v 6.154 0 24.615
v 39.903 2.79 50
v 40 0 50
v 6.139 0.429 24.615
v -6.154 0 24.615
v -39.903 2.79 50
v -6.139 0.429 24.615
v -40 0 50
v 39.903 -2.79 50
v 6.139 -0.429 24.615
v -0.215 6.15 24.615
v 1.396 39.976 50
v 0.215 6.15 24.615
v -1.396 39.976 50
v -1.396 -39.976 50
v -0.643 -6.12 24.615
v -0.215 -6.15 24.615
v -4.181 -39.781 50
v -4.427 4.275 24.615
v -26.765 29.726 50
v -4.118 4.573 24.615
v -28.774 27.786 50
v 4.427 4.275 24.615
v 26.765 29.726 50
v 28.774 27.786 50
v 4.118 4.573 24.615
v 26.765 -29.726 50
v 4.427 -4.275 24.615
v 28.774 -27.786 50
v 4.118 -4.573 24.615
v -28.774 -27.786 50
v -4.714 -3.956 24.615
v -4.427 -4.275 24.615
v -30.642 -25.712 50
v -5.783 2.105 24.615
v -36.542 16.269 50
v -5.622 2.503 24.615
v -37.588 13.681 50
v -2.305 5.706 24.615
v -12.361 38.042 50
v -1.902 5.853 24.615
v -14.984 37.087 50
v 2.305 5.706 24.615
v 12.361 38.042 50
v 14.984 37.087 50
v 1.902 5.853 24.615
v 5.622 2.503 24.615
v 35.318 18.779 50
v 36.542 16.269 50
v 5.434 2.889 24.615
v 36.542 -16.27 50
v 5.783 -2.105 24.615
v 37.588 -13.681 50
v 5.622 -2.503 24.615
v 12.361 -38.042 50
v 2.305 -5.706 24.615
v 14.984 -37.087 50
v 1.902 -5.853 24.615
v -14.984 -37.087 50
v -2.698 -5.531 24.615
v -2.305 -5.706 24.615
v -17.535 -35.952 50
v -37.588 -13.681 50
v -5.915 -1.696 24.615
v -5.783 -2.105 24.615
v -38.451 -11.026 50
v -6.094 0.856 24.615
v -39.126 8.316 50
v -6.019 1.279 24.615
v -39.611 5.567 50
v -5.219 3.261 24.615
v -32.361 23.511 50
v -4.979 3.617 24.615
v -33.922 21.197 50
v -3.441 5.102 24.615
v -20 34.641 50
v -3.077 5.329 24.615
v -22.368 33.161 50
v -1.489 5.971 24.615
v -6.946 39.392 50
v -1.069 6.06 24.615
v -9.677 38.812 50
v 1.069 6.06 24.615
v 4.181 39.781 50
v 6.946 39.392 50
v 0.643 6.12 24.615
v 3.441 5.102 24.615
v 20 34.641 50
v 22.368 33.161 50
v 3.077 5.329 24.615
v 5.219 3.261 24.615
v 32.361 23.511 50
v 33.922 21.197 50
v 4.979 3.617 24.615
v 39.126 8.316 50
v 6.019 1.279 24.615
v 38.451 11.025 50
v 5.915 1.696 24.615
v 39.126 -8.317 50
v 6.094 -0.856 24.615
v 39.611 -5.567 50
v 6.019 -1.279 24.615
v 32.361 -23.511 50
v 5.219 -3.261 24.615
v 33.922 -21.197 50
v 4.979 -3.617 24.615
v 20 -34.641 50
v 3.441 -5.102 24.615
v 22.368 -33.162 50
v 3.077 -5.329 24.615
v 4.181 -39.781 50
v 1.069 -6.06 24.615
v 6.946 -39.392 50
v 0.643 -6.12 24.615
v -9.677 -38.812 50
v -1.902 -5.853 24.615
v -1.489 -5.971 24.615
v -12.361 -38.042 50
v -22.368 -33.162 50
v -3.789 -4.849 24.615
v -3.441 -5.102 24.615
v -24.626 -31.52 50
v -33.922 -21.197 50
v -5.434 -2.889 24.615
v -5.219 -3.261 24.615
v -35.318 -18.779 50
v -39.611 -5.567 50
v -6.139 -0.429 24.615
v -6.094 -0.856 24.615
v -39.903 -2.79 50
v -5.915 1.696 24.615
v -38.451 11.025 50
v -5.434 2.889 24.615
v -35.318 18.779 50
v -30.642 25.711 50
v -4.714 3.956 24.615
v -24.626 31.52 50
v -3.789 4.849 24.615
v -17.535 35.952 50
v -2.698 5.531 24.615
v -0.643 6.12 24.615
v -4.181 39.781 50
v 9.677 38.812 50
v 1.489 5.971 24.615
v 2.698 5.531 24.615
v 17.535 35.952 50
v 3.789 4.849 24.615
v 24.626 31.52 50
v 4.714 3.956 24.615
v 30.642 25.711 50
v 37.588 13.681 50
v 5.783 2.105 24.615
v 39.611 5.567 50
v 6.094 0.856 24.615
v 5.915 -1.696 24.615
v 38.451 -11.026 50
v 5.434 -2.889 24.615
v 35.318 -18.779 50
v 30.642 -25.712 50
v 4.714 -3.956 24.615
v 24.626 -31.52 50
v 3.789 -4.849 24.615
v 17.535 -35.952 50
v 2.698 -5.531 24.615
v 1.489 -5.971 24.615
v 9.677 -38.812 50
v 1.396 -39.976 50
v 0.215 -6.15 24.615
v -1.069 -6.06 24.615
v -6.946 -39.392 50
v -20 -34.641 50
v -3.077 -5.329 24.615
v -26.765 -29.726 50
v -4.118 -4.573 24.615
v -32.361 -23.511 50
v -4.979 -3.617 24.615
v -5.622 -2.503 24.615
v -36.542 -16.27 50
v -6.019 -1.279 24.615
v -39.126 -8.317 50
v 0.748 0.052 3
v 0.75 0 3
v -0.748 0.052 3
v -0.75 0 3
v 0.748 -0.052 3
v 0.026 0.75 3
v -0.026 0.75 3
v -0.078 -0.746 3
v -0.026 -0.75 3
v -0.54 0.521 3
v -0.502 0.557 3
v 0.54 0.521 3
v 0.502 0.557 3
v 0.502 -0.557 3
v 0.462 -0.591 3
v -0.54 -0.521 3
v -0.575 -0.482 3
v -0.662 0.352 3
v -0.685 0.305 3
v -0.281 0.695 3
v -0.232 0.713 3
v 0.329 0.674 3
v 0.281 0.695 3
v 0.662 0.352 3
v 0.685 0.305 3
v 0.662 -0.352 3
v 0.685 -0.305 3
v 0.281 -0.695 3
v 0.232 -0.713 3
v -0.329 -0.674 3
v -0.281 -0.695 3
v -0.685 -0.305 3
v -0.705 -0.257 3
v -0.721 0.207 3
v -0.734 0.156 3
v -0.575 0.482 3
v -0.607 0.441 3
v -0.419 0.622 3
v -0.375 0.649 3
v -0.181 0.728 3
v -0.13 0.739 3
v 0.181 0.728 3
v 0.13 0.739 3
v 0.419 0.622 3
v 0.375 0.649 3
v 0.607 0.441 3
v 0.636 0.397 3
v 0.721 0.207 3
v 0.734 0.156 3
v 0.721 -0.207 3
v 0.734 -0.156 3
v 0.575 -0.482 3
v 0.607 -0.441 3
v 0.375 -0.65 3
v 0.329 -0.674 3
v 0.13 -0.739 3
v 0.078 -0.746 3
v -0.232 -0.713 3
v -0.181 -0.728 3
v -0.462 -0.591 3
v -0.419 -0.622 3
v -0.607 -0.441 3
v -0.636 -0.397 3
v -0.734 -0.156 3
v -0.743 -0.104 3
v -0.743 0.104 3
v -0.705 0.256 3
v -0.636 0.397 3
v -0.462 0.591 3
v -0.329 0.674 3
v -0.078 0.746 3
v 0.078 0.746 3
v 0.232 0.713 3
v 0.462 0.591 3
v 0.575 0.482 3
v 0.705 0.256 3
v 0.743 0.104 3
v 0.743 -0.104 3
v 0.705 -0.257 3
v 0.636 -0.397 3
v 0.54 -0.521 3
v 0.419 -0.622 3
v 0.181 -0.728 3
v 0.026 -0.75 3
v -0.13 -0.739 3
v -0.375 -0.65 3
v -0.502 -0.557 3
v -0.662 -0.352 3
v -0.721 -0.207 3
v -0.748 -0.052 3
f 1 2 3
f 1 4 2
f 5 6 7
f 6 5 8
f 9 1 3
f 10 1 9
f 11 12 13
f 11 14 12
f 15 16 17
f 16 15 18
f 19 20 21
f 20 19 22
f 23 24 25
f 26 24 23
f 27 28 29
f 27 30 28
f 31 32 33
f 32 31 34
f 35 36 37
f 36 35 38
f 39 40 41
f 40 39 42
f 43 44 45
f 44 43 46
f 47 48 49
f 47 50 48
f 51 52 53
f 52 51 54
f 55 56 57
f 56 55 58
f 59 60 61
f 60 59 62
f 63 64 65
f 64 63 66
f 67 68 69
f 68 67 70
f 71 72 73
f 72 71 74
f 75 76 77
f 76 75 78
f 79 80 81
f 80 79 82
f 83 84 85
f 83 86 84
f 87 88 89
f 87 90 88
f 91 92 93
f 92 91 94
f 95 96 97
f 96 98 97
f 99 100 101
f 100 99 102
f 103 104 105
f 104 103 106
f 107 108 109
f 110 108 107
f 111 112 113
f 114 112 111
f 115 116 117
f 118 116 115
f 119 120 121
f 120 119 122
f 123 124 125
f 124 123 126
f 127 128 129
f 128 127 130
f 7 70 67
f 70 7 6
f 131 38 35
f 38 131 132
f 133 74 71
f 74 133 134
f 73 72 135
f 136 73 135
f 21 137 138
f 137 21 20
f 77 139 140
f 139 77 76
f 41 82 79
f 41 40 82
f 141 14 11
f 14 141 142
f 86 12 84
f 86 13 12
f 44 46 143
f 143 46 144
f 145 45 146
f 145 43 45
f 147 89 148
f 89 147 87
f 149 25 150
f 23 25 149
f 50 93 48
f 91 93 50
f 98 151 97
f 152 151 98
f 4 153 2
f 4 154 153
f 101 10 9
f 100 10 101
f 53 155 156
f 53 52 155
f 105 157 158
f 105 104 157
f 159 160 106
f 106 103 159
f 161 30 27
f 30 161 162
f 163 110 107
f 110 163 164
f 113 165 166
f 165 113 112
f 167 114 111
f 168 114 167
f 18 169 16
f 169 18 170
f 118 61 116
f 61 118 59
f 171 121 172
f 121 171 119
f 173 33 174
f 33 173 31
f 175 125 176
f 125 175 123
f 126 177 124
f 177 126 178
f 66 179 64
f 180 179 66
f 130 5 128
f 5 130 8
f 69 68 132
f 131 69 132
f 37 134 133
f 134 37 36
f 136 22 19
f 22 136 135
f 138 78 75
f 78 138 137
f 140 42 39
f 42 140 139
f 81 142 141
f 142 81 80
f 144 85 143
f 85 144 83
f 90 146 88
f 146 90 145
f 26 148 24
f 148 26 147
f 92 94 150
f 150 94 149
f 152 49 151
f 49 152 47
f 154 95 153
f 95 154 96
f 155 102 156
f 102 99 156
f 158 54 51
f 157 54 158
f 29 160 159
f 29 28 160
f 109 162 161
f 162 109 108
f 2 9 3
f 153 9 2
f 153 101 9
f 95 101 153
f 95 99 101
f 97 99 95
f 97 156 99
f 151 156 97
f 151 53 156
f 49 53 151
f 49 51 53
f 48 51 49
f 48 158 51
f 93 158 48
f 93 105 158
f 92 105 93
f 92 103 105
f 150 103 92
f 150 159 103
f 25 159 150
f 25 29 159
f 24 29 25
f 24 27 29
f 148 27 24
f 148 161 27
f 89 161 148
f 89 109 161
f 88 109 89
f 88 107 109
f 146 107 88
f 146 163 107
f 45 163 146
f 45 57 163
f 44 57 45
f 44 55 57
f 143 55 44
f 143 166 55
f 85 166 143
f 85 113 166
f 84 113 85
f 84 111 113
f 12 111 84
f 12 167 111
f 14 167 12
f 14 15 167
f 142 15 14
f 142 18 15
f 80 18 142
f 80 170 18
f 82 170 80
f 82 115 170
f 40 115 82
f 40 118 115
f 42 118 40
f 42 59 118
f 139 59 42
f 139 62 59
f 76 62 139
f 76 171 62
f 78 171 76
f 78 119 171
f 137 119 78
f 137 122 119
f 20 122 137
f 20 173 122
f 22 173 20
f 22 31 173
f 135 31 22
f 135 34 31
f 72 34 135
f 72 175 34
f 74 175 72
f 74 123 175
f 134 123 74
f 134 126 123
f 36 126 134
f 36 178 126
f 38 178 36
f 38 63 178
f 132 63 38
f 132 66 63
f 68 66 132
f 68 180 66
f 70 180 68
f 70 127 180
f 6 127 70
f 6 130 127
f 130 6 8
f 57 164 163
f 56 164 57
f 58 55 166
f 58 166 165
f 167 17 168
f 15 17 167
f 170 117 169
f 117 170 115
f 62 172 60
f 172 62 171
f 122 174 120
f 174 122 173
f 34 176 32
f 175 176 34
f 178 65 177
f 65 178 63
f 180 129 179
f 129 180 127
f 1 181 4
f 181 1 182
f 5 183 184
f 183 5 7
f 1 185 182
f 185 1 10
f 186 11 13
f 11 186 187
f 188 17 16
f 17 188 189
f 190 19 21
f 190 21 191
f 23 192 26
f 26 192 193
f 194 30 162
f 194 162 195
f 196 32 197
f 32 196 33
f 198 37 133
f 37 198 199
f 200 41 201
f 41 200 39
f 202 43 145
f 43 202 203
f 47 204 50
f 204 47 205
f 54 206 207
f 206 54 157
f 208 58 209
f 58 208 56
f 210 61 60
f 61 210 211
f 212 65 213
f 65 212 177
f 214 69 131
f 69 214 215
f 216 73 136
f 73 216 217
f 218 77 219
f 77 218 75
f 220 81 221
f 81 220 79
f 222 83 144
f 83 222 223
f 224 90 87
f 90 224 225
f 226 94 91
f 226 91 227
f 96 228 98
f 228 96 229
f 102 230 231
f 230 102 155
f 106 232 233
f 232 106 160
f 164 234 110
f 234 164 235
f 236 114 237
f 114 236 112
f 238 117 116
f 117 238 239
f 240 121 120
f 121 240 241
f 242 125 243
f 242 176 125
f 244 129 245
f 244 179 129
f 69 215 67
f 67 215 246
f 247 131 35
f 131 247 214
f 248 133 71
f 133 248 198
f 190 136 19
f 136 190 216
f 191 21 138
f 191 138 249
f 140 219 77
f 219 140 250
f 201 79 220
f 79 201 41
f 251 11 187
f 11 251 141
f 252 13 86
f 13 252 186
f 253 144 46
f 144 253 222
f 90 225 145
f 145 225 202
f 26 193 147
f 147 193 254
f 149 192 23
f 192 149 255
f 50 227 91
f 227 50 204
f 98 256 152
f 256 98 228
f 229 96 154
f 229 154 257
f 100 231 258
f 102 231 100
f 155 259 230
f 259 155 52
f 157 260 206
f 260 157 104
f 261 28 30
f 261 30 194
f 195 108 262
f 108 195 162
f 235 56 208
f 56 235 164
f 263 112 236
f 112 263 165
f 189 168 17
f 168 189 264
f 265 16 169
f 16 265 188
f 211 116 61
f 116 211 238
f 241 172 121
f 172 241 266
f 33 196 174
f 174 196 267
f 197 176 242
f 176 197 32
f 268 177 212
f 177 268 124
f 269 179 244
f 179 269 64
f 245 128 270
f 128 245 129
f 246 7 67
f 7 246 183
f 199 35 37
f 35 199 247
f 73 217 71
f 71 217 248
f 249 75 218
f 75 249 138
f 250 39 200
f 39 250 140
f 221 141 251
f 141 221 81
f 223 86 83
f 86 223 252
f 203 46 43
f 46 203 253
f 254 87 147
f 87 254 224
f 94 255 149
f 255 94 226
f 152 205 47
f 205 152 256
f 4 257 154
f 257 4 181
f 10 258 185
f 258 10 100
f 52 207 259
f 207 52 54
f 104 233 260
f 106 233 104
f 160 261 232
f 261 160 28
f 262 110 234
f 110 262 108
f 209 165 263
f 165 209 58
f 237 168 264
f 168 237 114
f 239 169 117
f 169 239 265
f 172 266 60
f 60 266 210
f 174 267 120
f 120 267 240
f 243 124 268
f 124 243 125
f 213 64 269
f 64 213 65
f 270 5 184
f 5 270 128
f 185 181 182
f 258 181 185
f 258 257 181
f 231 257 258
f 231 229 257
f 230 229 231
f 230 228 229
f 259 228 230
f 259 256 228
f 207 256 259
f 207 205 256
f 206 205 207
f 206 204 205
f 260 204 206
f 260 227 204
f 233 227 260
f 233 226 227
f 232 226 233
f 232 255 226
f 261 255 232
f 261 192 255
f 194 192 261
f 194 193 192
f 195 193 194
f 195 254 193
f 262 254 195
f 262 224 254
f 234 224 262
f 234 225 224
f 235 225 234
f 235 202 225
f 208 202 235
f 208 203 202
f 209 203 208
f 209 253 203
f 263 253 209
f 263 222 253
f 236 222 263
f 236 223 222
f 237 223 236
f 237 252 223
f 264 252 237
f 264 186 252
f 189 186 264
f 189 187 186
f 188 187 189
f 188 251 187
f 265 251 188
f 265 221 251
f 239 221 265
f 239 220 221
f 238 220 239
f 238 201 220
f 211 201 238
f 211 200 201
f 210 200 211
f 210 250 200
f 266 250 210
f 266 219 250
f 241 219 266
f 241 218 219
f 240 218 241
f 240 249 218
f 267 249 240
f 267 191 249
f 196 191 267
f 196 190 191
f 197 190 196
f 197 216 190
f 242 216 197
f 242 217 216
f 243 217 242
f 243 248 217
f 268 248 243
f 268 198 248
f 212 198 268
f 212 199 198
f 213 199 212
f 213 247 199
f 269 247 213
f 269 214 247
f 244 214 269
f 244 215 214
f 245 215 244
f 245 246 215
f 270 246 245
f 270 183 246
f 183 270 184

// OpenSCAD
$fn = 90;

difference(){
	union(){
		translate([0, 0, 20])
			cylinder(d1=0, d2=80, h=30);
		cylinder(d1=0, d2=15, h=30);
	}
	#cylinder(d=2, h=3);
}
